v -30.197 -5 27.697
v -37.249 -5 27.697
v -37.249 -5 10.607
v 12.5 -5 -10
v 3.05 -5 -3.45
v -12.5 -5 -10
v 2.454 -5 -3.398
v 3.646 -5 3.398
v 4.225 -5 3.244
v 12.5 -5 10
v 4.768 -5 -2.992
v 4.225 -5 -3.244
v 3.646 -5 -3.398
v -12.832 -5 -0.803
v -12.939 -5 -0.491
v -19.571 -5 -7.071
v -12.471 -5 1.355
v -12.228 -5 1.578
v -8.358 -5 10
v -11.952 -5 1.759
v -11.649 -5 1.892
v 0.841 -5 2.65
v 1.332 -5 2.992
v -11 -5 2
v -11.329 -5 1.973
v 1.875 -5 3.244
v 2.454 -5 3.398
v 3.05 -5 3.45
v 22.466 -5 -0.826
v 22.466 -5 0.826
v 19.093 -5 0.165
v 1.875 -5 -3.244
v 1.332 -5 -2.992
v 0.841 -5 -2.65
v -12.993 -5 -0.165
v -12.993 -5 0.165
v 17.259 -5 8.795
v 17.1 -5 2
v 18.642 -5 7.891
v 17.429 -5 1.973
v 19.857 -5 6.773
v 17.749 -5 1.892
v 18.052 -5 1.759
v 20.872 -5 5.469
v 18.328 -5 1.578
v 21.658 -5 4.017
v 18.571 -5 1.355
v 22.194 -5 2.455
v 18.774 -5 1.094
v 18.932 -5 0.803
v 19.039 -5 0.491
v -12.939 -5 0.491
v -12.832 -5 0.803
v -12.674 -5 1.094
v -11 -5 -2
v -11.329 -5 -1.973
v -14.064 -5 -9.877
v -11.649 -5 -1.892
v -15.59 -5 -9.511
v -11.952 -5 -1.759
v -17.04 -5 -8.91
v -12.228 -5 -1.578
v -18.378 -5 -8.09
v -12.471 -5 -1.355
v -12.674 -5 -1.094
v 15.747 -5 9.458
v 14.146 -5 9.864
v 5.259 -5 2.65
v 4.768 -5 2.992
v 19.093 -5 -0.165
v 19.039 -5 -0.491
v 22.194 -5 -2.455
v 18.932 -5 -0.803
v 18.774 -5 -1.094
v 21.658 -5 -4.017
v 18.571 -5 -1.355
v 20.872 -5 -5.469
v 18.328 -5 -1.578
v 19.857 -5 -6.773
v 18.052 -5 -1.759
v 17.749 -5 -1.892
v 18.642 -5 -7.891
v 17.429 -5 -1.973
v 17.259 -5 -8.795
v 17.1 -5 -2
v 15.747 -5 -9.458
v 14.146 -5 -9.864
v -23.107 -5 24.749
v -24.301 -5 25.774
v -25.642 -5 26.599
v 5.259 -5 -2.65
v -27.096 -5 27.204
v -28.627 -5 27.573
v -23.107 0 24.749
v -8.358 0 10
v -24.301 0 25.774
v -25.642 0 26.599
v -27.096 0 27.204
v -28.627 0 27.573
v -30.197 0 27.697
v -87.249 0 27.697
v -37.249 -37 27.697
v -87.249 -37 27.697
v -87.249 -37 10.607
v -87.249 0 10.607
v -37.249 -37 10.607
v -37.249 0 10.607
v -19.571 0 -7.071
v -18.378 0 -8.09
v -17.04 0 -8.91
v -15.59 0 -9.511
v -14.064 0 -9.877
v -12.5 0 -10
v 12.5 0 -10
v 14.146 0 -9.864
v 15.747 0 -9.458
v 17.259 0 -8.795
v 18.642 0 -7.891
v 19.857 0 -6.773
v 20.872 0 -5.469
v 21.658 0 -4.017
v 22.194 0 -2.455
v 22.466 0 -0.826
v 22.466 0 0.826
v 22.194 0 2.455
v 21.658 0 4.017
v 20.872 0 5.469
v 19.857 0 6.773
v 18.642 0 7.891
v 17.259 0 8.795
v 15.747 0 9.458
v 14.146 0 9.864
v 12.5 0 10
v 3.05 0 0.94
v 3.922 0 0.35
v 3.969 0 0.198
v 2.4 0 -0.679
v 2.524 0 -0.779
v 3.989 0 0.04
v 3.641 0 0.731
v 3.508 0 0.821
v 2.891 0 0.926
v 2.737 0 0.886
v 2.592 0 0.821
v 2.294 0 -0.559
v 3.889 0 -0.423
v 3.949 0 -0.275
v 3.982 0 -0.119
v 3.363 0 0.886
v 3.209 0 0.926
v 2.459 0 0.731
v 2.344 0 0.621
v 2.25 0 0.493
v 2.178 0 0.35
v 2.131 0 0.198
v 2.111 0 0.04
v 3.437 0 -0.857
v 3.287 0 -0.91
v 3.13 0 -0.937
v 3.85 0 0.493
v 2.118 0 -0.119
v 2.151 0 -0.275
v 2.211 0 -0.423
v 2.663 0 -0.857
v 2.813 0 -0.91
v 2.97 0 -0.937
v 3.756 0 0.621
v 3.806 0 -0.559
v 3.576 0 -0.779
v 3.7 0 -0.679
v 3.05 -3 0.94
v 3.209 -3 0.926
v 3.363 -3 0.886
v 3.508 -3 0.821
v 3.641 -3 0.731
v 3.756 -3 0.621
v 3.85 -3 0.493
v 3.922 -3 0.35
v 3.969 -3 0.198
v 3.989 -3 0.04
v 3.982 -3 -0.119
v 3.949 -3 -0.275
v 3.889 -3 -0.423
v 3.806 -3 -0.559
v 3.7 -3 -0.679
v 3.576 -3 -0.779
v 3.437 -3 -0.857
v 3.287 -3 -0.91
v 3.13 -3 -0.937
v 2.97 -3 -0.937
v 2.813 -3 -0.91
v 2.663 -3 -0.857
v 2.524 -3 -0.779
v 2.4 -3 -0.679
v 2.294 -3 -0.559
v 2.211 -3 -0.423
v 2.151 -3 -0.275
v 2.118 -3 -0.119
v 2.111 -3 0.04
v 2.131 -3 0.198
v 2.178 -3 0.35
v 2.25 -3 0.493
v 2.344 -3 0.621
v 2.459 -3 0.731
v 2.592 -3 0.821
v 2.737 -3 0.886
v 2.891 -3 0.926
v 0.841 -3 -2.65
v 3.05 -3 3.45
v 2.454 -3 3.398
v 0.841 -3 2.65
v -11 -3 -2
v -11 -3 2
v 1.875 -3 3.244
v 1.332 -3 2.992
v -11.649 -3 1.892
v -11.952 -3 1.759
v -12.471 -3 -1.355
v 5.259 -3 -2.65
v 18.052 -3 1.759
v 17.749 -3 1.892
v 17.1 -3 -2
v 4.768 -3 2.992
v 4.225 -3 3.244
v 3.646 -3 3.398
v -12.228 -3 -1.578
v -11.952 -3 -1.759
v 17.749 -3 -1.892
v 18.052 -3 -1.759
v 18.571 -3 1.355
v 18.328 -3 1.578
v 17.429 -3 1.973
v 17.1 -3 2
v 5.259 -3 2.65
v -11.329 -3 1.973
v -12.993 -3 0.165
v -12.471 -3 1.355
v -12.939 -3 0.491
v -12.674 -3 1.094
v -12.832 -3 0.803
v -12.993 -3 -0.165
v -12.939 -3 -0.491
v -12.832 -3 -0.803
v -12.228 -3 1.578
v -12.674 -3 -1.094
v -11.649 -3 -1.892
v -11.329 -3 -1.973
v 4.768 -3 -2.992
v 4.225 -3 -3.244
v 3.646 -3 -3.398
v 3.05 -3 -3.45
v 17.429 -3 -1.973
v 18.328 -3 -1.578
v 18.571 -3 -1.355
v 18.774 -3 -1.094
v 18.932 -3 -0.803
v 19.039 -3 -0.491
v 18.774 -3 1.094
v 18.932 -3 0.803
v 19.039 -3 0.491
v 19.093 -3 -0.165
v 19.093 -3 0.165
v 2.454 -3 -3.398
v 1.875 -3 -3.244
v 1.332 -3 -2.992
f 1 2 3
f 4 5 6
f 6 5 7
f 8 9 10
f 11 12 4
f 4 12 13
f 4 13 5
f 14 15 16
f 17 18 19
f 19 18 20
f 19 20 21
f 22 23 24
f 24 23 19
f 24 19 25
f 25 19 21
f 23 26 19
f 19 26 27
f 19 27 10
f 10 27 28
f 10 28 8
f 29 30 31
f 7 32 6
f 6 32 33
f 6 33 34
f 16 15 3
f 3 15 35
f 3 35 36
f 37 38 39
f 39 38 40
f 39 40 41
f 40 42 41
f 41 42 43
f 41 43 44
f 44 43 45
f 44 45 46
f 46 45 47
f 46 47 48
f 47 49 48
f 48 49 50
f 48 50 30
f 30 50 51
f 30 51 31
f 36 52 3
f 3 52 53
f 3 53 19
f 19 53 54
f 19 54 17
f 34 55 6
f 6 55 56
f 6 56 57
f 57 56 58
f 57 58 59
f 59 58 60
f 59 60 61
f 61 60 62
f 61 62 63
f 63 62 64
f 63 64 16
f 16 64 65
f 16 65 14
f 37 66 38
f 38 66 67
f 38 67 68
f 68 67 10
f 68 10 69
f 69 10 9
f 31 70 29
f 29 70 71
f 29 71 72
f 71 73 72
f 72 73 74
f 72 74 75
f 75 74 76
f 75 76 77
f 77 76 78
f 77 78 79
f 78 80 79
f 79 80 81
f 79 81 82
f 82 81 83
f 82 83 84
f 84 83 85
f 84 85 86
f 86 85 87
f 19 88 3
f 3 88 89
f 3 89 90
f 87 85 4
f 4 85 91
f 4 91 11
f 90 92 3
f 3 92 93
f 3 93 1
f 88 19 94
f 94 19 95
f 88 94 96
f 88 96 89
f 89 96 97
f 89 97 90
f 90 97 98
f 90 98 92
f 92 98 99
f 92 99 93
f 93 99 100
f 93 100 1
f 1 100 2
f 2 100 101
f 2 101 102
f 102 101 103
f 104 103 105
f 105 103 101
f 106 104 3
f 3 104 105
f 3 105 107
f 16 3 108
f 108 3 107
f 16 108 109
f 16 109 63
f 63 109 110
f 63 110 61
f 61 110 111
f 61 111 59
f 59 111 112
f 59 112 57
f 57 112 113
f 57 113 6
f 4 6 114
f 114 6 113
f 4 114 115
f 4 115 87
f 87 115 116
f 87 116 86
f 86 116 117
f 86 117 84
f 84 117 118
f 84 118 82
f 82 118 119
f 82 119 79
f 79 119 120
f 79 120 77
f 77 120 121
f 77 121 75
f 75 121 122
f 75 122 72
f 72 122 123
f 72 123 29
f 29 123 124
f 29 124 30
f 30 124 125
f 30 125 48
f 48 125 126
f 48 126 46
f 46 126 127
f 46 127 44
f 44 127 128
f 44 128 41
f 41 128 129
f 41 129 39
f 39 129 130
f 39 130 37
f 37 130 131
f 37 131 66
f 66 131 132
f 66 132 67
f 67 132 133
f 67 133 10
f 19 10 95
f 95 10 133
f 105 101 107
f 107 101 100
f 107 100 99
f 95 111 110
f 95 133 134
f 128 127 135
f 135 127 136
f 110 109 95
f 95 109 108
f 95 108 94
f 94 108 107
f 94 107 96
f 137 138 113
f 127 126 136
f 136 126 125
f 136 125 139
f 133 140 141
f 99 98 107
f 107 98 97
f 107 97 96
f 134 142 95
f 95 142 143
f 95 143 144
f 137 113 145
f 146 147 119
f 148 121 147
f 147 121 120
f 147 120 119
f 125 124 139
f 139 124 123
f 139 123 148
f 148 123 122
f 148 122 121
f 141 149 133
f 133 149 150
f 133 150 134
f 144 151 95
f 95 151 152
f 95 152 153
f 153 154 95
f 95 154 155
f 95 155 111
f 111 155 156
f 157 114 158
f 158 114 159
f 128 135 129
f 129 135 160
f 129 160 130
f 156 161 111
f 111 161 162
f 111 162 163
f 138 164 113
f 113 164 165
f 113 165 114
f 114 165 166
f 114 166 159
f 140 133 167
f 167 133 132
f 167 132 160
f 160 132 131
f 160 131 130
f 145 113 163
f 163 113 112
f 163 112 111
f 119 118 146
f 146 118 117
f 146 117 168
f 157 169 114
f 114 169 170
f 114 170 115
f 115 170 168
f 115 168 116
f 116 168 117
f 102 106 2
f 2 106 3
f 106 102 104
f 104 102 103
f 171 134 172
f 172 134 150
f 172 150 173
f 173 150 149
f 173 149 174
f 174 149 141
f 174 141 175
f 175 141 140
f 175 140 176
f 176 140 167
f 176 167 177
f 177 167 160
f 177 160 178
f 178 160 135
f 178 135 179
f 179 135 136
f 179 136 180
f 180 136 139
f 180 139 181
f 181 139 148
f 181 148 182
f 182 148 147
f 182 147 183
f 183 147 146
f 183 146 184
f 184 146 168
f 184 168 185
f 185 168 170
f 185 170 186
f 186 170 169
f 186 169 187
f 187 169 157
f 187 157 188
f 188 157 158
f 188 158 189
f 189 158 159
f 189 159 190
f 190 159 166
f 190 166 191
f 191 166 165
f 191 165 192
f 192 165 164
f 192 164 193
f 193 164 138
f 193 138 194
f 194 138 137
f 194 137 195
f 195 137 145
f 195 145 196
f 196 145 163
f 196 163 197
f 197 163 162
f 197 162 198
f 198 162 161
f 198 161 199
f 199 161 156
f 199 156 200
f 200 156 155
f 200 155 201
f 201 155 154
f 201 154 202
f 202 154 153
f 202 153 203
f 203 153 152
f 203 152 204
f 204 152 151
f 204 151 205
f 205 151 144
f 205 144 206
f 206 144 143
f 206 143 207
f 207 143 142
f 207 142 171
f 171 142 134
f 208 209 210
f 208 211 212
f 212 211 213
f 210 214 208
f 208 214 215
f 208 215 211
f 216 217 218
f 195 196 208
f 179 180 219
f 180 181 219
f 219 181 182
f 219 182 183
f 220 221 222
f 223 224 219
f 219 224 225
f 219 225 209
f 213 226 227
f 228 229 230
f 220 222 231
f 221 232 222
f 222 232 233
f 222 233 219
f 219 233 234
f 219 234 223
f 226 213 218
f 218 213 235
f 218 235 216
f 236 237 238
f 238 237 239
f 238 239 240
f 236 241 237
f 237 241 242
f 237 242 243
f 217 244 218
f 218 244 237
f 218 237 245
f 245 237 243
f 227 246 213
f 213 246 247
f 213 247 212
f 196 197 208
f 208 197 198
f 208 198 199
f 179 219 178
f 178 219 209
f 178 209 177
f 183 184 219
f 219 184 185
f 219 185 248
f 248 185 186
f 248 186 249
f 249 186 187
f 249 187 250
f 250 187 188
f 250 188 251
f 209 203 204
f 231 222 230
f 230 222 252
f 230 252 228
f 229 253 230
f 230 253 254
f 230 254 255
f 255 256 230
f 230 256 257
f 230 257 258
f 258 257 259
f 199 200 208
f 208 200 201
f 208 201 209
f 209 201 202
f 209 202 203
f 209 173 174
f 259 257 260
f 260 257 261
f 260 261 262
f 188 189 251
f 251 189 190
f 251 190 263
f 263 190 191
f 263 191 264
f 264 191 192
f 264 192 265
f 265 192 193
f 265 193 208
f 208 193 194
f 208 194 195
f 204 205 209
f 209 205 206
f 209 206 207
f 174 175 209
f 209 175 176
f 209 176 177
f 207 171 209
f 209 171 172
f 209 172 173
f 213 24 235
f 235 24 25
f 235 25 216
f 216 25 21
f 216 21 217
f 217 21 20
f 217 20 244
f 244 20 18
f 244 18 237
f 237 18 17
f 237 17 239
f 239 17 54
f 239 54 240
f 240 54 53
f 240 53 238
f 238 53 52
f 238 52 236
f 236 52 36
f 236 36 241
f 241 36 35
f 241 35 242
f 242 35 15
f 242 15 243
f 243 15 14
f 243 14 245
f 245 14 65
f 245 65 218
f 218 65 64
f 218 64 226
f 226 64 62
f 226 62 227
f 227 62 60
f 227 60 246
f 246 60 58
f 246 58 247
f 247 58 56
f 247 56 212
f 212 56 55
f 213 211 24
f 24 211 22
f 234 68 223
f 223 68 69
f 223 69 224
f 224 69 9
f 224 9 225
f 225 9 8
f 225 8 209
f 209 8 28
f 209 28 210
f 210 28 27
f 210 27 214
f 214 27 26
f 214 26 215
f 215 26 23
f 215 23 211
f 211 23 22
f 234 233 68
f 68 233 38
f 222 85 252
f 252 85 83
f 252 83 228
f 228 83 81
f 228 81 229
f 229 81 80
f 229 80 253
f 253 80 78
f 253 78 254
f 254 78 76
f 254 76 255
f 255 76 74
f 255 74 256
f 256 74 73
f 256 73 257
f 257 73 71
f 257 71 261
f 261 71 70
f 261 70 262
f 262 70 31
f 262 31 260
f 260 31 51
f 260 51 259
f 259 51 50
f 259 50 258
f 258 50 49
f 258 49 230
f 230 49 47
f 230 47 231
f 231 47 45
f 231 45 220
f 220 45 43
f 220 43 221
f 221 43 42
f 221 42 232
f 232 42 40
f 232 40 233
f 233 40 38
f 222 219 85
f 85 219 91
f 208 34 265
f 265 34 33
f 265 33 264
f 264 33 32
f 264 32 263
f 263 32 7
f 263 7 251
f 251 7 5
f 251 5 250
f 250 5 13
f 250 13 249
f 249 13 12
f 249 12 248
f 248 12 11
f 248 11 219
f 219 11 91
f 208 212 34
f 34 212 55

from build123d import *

# Parameters (mm, degrees)
RESSALTO_EXTRUS_O1_DEPTH = 5
ESBO_O2_W                = 50
ESBO_O2_H                = 17.09
RESSALTO_EXTRUS_O2_DEPTH = 32
ESBO_O3_R                = 0.94
CORTE_EXTRUS_O1_DEPTH    = 38
CORTE_EXTRUS_O2_DEPTH    = 2


with BuildPart() as part:
    # Esboço1 → Ressalto-extrusão1 (new body)
    with BuildSketch(Plane(origin=(0, 0, 0), x_dir=(1, 0, 0), z_dir=(0, 1, 0))):
        with BuildLine():
            ThreePointArc((-12.5, -10), (-21.738795325, -3.826834324), (-19.571067812, 7.071067812))
            Line((-19.571067812, 7.071067812), (-37.248737342, -10.606601718))
            Line((-37.248737342, -10.606601718), (-87.248737342, -10.606601718))
            Line((-87.248737342, -10.606601718), (-87.248737342, -27.696601718))
            Line((-87.248737342, -27.696601718), (-30.196551164, -27.696601718))
            ThreePointArc((-30.196551164, -27.696601718), (-26.357368714, -26.930272609), (-23.106601718, -24.748737342))
            Line((-23.106601718, -24.748737342), (-8.357864376, -10))
            Line((-8.357864376, -10), (-12.5, -10))
        make_face()
        with BuildLine():
            Line((-12.5, -10), (12.5, -10))
            ThreePointArc((12.5, -10), (22.5, 0), (12.5, 10))
            Line((12.5, 10), (-12.5, 10))
            ThreePointArc((-12.5, 10), (-22.5, 0), (-12.5, -10))
        make_face()
    extrude(amount=-RESSALTO_EXTRUS_O1_DEPTH)

    # Esboço2 → Ressalto-extrusão2 (add)
    with BuildSketch(Plane.XZ.offset(5)):
        with Locations((-62.248737342, 19.151601718)):
            Rectangle(ESBO_O2_W, ESBO_O2_H)
    extrude(amount=RESSALTO_EXTRUS_O2_DEPTH)

    # Esboço3 → Corte-extrusão1 (cut, through all)
    with BuildSketch(Plane(origin=(0, 0, 0), x_dir=(1, 0, 0), z_dir=(0, 1, 0))):
        with Locations((3.05, 0)):
            Circle(ESBO_O3_R)
    extrude(amount=-CORTE_EXTRUS_O1_DEPTH, mode=Mode.SUBTRACT)

    # Esboço6 → Corte-extrusão2 (cut)
    with BuildSketch(Plane(origin=(0, -5, 0), x_dir=(1, 0, 0), z_dir=(0, 1, 0))):
        with BuildLine():
            Line((-11, 2), (0.840927797, 2.65))
            ThreePointArc((0.840927797, 2.65), (3.05, 3.45), (5.259072203, 2.65))
            Line((5.259072203, 2.65), (17.1, 2))
            ThreePointArc((17.1, 2), (19.1, 0), (17.1, -2))
            Line((17.1, -2), (5.259072203, -2.65))
            ThreePointArc((5.259072203, -2.65), (3.05, -3.45), (0.840927797, -2.65))
            Line((0.840927797, -2.65), (-11, -2))
            ThreePointArc((-11, -2), (-13, 0), (-11, 2))
        make_face()
    extrude(amount=CORTE_EXTRUS_O2_DEPTH, mode=Mode.SUBTRACT)


solid = part.part
